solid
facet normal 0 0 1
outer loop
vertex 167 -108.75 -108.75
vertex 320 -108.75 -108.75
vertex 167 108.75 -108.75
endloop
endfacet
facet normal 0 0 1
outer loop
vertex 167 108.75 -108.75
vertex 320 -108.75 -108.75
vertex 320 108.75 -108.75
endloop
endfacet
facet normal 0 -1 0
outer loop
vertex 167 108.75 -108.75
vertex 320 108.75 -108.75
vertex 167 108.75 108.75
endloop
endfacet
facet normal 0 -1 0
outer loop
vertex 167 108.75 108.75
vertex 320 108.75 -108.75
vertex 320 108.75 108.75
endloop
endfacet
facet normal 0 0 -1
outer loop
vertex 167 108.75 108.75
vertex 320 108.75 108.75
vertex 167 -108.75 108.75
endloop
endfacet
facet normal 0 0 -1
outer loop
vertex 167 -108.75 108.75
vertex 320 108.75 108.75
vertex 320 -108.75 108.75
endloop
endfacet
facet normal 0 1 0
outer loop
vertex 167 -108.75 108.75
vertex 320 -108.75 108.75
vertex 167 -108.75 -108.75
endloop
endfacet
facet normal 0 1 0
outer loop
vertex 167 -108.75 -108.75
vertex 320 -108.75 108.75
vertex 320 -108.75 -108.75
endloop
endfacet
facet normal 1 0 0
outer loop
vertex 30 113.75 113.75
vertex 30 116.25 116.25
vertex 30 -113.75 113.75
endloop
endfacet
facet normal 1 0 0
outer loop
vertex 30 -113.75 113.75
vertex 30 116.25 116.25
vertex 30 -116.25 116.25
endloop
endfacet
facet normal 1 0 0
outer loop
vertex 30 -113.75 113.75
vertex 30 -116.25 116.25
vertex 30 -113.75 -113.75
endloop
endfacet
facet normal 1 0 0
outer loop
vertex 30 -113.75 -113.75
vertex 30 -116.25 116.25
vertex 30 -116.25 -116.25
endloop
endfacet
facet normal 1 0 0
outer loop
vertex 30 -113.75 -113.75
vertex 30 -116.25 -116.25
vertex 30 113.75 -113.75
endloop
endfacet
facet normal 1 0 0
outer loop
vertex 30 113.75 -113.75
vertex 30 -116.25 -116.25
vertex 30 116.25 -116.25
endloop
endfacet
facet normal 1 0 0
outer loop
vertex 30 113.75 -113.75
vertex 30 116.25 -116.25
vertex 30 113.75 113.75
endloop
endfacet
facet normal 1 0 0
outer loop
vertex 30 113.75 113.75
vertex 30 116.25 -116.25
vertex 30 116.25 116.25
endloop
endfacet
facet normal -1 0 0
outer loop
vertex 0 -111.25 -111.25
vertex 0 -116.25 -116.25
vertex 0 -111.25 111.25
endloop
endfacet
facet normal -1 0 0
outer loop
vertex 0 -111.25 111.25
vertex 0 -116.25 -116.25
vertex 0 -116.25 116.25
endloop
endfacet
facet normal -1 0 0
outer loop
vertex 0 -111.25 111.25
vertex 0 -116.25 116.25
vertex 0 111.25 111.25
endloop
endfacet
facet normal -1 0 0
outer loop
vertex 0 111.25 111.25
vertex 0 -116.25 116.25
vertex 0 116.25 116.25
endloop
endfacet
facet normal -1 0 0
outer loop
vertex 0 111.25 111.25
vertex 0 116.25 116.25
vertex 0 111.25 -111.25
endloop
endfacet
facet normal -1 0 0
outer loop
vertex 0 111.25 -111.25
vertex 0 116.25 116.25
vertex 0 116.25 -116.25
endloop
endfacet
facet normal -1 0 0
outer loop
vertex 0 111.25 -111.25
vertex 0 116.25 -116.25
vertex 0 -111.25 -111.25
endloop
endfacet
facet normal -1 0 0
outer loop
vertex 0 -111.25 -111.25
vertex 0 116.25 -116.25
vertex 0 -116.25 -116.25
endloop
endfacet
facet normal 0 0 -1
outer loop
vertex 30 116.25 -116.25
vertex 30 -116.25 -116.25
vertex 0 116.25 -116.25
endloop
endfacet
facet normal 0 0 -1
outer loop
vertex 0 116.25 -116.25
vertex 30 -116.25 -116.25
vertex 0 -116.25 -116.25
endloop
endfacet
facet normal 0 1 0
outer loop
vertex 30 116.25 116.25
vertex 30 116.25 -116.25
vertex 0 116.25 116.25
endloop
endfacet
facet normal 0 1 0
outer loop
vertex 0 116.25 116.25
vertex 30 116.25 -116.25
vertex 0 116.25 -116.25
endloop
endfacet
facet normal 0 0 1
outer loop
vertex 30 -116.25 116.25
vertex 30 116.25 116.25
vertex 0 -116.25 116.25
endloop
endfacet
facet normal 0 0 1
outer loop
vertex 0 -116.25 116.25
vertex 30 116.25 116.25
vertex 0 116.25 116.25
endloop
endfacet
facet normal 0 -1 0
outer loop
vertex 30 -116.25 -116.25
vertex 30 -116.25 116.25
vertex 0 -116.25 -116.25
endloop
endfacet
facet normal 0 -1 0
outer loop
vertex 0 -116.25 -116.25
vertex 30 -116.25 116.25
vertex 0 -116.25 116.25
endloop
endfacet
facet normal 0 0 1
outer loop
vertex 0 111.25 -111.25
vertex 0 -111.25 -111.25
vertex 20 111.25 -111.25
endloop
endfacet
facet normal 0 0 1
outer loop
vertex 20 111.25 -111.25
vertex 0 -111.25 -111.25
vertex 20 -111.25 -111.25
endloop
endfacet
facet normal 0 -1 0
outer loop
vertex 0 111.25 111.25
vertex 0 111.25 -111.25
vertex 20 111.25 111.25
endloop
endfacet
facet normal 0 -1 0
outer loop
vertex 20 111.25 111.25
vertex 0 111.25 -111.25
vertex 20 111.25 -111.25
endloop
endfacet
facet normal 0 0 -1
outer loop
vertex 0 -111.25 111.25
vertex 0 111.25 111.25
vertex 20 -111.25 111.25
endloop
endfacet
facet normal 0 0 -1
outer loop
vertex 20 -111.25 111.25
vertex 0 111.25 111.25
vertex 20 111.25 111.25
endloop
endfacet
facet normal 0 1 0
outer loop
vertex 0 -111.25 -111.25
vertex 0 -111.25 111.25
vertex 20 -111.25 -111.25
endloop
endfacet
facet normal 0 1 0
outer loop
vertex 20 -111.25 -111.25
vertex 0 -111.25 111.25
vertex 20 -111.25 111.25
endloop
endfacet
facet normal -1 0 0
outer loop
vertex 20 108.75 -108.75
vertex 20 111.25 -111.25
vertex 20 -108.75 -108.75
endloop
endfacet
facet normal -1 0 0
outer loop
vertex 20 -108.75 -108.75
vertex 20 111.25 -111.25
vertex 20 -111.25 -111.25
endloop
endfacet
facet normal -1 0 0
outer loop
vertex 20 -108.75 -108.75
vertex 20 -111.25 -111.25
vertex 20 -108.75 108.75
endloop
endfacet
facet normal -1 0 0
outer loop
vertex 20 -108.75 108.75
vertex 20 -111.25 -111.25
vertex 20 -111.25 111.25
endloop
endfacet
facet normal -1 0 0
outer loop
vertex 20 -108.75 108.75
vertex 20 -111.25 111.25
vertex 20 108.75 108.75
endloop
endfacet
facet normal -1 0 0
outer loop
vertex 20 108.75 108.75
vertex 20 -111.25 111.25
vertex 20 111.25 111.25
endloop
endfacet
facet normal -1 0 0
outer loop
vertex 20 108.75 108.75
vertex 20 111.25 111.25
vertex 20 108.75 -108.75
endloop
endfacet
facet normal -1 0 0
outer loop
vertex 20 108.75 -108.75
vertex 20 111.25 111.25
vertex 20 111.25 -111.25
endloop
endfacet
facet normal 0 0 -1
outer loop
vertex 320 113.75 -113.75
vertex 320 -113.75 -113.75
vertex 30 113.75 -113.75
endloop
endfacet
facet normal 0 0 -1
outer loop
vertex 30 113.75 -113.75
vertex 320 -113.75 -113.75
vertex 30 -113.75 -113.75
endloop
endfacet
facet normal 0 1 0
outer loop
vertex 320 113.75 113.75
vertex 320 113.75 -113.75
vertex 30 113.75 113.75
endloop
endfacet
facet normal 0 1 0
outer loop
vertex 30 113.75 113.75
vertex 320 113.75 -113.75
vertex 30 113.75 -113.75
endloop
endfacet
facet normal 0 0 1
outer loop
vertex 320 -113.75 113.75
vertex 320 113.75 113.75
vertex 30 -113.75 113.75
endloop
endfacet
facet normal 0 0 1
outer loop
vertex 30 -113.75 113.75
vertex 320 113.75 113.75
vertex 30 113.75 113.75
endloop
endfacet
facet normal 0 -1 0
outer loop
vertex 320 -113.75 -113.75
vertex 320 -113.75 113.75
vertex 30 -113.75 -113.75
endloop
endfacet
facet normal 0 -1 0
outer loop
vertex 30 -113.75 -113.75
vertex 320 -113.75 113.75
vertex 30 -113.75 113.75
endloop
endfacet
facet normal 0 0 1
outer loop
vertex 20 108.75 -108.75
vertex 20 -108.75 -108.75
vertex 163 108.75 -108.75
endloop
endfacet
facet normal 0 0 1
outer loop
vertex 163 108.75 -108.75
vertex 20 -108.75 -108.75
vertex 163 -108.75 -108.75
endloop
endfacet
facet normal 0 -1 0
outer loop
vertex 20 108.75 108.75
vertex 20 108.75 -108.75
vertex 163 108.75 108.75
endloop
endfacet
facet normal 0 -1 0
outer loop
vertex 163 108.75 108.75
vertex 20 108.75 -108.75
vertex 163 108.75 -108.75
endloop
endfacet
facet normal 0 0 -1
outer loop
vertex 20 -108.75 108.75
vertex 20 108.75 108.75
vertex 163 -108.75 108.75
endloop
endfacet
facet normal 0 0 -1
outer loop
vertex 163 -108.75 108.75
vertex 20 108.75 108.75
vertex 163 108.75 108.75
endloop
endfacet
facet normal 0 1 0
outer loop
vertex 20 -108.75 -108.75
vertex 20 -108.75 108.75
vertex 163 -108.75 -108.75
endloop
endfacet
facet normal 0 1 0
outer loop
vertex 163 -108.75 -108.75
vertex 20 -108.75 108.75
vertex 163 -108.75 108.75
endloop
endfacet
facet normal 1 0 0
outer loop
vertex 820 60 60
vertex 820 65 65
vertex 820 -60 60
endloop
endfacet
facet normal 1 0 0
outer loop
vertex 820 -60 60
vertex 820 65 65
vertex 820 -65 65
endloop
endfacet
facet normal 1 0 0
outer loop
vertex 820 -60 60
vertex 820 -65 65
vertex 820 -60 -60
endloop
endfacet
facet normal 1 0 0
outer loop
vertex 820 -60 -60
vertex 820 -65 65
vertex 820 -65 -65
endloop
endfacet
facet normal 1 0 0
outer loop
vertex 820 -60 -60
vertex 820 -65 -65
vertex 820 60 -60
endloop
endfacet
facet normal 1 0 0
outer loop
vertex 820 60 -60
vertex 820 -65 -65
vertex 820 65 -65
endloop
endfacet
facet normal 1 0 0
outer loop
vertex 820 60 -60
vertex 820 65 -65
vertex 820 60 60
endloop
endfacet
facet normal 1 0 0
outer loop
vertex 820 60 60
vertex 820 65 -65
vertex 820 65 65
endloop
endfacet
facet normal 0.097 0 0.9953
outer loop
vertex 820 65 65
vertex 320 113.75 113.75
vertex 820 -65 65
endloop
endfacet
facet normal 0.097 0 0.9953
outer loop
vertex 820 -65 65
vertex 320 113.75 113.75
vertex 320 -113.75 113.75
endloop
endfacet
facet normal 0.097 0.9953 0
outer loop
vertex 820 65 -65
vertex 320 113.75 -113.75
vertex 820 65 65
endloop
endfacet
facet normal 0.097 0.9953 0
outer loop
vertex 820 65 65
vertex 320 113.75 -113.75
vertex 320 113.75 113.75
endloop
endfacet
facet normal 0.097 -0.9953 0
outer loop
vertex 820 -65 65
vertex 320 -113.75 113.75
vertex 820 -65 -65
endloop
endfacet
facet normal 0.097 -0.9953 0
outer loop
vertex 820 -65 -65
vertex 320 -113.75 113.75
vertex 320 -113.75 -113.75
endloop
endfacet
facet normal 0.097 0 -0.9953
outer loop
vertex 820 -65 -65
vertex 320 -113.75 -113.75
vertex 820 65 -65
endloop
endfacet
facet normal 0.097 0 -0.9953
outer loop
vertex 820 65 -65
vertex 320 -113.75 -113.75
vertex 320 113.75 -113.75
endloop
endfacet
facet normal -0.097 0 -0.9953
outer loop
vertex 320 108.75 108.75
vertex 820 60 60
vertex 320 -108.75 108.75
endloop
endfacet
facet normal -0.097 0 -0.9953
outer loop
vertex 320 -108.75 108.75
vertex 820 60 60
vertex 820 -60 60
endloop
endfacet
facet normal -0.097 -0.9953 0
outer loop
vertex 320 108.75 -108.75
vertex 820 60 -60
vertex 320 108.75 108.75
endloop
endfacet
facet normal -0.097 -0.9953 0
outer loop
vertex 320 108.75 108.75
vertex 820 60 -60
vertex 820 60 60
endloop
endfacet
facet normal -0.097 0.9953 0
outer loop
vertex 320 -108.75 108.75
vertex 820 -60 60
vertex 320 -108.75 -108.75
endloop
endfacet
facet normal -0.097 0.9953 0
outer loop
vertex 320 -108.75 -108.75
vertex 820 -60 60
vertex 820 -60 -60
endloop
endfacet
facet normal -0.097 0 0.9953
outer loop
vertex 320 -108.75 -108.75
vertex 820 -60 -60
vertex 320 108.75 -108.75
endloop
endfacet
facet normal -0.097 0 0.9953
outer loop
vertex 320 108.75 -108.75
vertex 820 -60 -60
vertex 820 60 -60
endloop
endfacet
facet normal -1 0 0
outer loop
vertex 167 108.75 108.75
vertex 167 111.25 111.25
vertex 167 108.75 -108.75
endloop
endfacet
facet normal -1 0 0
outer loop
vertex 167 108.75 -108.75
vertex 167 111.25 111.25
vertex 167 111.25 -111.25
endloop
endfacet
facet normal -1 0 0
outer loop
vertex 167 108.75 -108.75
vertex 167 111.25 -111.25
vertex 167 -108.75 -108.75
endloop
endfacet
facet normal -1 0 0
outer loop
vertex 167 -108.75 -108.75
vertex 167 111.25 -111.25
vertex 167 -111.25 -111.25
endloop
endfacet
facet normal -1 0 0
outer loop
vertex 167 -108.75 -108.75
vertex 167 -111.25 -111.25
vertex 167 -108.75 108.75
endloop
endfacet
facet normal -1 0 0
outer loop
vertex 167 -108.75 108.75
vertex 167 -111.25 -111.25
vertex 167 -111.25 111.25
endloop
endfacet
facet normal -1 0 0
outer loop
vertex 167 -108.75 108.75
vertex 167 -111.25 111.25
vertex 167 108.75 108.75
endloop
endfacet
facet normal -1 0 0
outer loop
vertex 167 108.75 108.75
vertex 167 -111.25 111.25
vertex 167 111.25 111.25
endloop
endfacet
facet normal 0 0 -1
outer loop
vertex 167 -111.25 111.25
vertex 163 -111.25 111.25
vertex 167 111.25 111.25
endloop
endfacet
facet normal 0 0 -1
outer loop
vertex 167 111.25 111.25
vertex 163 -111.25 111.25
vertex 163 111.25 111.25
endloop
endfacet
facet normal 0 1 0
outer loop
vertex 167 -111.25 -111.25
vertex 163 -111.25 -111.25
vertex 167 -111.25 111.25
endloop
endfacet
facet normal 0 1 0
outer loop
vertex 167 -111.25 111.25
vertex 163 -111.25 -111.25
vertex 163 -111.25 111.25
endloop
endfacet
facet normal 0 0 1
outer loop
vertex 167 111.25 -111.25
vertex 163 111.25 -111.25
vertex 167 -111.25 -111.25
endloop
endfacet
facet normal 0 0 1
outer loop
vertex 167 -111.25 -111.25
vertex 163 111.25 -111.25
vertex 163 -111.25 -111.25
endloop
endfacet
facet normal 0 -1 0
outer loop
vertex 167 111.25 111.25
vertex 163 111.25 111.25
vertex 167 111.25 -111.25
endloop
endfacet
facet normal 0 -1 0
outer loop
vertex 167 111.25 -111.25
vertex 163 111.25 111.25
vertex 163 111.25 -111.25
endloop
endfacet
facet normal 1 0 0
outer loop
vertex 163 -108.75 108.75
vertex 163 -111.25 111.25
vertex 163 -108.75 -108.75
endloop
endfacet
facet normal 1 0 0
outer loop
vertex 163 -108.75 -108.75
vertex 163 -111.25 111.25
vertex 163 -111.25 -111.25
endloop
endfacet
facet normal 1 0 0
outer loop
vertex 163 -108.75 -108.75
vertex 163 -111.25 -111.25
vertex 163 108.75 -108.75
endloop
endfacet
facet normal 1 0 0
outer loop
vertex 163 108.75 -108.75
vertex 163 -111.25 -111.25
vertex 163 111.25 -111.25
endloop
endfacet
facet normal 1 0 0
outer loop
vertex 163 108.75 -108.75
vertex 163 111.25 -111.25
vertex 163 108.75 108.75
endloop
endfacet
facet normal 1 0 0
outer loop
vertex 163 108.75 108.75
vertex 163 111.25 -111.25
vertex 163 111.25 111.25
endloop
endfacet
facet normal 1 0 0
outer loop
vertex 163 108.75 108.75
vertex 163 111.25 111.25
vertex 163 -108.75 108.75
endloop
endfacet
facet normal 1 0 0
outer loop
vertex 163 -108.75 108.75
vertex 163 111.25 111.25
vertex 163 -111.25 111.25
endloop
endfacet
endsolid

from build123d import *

# Parameters (mm, degrees)
SKETCH1_W               = 232.5
SKETCH1_H               = 232.5
SKETCH1_W_2             = 222.5
SKETCH1_H_2             = 222.5
BOSS_EXTRUDE1_DEPTH     = 30
SKETCH3_W               = 227.5
SKETCH3_H               = 227.5
SKETCH3_W_2             = 217.5
SKETCH3_H_2             = 217.5
BOSS_EXTRUDE2_DEPTH     = 300
CUT_EXTRUDE1_DEPTH      = 2
CUT_EXTRUDE1_DEPTH_BACK = 2
SKETCH8_W               = 222.5
SKETCH8_H               = 222.5
SKETCH8_W_2             = 217.5
SKETCH8_H_2             = 217.5


with BuildPart() as part:
    # Sketch1 → Boss-Extrude1 (new body)
    with BuildSketch(Plane(origin=(0, 0, 0), x_dir=(0, 0, -1), z_dir=(1, 0, 0))):
        Rectangle(SKETCH1_W, SKETCH1_H)
        Rectangle(SKETCH1_W_2, SKETCH1_H_2, mode=Mode.SUBTRACT)
    extrude(amount=BOSS_EXTRUDE1_DEPTH)

    # Sketch3 → Boss-Extrude2 (add)
    with BuildSketch(Plane(origin=(20, 0, 0), x_dir=(0, 0, -1), z_dir=(1, 0, 0))):
        Rectangle(SKETCH3_W, SKETCH3_H)
        Rectangle(SKETCH3_W_2, SKETCH3_H_2, mode=Mode.SUBTRACT)
    extrude(amount=BOSS_EXTRUDE2_DEPTH)

    # Sketch5 → Loft2 section 0
    with BuildSketch(Plane(origin=(320, 0, 0), x_dir=(0, 0, -1), z_dir=(1, 0, 0))):
        with BuildLine():
            Line((-113.75, 113.75), (113.75, 113.75))
            Line((113.75, 113.75), (113.75, -113.75))
            Line((113.75, -113.75), (-113.75, -113.75))
            Line((-113.75, -113.75), (-113.75, 113.75))
        make_face()
    # Sketch4 → Loft2 section 1
    with BuildSketch(Plane(origin=(820, 0, 0), x_dir=(0, 0, -1), z_dir=(1, 0, 0))):
        with BuildLine():
            Line((-65, 65), (65, 65))
            Line((65, 65), (65, -65))
            Line((65, -65), (-65, -65))
            Line((-65, -65), (-65, 65))
        make_face()
    loft()

    # Sketch5<5> → Cut-Loft2 section 0
    with BuildSketch(Plane(origin=(320, 0, 0), x_dir=(0, 0, -1), z_dir=(1, 0, 0))):
        with BuildLine():
            Line((-108.75, 108.75), (108.75, 108.75))
            Line((108.75, 108.75), (108.75, -108.75))
            Line((108.75, -108.75), (-108.75, -108.75))
            Line((-108.75, -108.75), (-108.75, 108.75))
        make_face()
    # Sketch4<7> → Cut-Loft2 section 1
    with BuildSketch(Plane(origin=(820, 0, 0), x_dir=(0, 0, -1), z_dir=(1, 0, 0))):
        with BuildLine():
            Line((-60, 60), (60, 60))
            Line((60, 60), (60, -60))
            Line((60, -60), (-60, -60))
            Line((-60, -60), (-60, 60))
        make_face()
    loft(mode=Mode.SUBTRACT)

    # Sketch8 → Cut-Extrude1 (cut, two sides: drawn at the far end of the back side and taken through both)
    with BuildSketch(Plane(origin=(165, 0, 0), x_dir=(0, 0, -1), z_dir=(1, 0, 0)).offset(-CUT_EXTRUDE1_DEPTH_BACK)):
        Rectangle(SKETCH8_W, SKETCH8_H)
        Rectangle(SKETCH8_W_2, SKETCH8_H_2, mode=Mode.SUBTRACT)
    extrude(amount=CUT_EXTRUDE1_DEPTH + CUT_EXTRUDE1_DEPTH_BACK, mode=Mode.SUBTRACT)


solid = part.part
